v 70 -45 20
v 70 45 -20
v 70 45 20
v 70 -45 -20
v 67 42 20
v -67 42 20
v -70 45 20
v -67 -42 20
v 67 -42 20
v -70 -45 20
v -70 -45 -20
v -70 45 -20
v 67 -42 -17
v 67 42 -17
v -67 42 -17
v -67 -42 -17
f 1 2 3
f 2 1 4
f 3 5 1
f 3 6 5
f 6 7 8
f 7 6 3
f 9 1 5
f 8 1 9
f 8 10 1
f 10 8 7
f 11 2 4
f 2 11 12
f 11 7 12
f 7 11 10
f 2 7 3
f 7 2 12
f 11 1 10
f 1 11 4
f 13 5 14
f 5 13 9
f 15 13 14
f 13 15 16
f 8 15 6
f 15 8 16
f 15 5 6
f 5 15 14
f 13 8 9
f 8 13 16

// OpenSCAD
// ========================================
// a 140 x 90 x 40 mm enclosure with 3 mm wall thickness
// NeuroCAD canonical IR; dimensions are millimetres
// ========================================
$fn = 48;

difference() {
  cube(size=[140, 90, 40], center=true);
  translate([0, 0, 1.6]) {
    cube(size=[134, 84, 37.2], center=true);
  }
}
